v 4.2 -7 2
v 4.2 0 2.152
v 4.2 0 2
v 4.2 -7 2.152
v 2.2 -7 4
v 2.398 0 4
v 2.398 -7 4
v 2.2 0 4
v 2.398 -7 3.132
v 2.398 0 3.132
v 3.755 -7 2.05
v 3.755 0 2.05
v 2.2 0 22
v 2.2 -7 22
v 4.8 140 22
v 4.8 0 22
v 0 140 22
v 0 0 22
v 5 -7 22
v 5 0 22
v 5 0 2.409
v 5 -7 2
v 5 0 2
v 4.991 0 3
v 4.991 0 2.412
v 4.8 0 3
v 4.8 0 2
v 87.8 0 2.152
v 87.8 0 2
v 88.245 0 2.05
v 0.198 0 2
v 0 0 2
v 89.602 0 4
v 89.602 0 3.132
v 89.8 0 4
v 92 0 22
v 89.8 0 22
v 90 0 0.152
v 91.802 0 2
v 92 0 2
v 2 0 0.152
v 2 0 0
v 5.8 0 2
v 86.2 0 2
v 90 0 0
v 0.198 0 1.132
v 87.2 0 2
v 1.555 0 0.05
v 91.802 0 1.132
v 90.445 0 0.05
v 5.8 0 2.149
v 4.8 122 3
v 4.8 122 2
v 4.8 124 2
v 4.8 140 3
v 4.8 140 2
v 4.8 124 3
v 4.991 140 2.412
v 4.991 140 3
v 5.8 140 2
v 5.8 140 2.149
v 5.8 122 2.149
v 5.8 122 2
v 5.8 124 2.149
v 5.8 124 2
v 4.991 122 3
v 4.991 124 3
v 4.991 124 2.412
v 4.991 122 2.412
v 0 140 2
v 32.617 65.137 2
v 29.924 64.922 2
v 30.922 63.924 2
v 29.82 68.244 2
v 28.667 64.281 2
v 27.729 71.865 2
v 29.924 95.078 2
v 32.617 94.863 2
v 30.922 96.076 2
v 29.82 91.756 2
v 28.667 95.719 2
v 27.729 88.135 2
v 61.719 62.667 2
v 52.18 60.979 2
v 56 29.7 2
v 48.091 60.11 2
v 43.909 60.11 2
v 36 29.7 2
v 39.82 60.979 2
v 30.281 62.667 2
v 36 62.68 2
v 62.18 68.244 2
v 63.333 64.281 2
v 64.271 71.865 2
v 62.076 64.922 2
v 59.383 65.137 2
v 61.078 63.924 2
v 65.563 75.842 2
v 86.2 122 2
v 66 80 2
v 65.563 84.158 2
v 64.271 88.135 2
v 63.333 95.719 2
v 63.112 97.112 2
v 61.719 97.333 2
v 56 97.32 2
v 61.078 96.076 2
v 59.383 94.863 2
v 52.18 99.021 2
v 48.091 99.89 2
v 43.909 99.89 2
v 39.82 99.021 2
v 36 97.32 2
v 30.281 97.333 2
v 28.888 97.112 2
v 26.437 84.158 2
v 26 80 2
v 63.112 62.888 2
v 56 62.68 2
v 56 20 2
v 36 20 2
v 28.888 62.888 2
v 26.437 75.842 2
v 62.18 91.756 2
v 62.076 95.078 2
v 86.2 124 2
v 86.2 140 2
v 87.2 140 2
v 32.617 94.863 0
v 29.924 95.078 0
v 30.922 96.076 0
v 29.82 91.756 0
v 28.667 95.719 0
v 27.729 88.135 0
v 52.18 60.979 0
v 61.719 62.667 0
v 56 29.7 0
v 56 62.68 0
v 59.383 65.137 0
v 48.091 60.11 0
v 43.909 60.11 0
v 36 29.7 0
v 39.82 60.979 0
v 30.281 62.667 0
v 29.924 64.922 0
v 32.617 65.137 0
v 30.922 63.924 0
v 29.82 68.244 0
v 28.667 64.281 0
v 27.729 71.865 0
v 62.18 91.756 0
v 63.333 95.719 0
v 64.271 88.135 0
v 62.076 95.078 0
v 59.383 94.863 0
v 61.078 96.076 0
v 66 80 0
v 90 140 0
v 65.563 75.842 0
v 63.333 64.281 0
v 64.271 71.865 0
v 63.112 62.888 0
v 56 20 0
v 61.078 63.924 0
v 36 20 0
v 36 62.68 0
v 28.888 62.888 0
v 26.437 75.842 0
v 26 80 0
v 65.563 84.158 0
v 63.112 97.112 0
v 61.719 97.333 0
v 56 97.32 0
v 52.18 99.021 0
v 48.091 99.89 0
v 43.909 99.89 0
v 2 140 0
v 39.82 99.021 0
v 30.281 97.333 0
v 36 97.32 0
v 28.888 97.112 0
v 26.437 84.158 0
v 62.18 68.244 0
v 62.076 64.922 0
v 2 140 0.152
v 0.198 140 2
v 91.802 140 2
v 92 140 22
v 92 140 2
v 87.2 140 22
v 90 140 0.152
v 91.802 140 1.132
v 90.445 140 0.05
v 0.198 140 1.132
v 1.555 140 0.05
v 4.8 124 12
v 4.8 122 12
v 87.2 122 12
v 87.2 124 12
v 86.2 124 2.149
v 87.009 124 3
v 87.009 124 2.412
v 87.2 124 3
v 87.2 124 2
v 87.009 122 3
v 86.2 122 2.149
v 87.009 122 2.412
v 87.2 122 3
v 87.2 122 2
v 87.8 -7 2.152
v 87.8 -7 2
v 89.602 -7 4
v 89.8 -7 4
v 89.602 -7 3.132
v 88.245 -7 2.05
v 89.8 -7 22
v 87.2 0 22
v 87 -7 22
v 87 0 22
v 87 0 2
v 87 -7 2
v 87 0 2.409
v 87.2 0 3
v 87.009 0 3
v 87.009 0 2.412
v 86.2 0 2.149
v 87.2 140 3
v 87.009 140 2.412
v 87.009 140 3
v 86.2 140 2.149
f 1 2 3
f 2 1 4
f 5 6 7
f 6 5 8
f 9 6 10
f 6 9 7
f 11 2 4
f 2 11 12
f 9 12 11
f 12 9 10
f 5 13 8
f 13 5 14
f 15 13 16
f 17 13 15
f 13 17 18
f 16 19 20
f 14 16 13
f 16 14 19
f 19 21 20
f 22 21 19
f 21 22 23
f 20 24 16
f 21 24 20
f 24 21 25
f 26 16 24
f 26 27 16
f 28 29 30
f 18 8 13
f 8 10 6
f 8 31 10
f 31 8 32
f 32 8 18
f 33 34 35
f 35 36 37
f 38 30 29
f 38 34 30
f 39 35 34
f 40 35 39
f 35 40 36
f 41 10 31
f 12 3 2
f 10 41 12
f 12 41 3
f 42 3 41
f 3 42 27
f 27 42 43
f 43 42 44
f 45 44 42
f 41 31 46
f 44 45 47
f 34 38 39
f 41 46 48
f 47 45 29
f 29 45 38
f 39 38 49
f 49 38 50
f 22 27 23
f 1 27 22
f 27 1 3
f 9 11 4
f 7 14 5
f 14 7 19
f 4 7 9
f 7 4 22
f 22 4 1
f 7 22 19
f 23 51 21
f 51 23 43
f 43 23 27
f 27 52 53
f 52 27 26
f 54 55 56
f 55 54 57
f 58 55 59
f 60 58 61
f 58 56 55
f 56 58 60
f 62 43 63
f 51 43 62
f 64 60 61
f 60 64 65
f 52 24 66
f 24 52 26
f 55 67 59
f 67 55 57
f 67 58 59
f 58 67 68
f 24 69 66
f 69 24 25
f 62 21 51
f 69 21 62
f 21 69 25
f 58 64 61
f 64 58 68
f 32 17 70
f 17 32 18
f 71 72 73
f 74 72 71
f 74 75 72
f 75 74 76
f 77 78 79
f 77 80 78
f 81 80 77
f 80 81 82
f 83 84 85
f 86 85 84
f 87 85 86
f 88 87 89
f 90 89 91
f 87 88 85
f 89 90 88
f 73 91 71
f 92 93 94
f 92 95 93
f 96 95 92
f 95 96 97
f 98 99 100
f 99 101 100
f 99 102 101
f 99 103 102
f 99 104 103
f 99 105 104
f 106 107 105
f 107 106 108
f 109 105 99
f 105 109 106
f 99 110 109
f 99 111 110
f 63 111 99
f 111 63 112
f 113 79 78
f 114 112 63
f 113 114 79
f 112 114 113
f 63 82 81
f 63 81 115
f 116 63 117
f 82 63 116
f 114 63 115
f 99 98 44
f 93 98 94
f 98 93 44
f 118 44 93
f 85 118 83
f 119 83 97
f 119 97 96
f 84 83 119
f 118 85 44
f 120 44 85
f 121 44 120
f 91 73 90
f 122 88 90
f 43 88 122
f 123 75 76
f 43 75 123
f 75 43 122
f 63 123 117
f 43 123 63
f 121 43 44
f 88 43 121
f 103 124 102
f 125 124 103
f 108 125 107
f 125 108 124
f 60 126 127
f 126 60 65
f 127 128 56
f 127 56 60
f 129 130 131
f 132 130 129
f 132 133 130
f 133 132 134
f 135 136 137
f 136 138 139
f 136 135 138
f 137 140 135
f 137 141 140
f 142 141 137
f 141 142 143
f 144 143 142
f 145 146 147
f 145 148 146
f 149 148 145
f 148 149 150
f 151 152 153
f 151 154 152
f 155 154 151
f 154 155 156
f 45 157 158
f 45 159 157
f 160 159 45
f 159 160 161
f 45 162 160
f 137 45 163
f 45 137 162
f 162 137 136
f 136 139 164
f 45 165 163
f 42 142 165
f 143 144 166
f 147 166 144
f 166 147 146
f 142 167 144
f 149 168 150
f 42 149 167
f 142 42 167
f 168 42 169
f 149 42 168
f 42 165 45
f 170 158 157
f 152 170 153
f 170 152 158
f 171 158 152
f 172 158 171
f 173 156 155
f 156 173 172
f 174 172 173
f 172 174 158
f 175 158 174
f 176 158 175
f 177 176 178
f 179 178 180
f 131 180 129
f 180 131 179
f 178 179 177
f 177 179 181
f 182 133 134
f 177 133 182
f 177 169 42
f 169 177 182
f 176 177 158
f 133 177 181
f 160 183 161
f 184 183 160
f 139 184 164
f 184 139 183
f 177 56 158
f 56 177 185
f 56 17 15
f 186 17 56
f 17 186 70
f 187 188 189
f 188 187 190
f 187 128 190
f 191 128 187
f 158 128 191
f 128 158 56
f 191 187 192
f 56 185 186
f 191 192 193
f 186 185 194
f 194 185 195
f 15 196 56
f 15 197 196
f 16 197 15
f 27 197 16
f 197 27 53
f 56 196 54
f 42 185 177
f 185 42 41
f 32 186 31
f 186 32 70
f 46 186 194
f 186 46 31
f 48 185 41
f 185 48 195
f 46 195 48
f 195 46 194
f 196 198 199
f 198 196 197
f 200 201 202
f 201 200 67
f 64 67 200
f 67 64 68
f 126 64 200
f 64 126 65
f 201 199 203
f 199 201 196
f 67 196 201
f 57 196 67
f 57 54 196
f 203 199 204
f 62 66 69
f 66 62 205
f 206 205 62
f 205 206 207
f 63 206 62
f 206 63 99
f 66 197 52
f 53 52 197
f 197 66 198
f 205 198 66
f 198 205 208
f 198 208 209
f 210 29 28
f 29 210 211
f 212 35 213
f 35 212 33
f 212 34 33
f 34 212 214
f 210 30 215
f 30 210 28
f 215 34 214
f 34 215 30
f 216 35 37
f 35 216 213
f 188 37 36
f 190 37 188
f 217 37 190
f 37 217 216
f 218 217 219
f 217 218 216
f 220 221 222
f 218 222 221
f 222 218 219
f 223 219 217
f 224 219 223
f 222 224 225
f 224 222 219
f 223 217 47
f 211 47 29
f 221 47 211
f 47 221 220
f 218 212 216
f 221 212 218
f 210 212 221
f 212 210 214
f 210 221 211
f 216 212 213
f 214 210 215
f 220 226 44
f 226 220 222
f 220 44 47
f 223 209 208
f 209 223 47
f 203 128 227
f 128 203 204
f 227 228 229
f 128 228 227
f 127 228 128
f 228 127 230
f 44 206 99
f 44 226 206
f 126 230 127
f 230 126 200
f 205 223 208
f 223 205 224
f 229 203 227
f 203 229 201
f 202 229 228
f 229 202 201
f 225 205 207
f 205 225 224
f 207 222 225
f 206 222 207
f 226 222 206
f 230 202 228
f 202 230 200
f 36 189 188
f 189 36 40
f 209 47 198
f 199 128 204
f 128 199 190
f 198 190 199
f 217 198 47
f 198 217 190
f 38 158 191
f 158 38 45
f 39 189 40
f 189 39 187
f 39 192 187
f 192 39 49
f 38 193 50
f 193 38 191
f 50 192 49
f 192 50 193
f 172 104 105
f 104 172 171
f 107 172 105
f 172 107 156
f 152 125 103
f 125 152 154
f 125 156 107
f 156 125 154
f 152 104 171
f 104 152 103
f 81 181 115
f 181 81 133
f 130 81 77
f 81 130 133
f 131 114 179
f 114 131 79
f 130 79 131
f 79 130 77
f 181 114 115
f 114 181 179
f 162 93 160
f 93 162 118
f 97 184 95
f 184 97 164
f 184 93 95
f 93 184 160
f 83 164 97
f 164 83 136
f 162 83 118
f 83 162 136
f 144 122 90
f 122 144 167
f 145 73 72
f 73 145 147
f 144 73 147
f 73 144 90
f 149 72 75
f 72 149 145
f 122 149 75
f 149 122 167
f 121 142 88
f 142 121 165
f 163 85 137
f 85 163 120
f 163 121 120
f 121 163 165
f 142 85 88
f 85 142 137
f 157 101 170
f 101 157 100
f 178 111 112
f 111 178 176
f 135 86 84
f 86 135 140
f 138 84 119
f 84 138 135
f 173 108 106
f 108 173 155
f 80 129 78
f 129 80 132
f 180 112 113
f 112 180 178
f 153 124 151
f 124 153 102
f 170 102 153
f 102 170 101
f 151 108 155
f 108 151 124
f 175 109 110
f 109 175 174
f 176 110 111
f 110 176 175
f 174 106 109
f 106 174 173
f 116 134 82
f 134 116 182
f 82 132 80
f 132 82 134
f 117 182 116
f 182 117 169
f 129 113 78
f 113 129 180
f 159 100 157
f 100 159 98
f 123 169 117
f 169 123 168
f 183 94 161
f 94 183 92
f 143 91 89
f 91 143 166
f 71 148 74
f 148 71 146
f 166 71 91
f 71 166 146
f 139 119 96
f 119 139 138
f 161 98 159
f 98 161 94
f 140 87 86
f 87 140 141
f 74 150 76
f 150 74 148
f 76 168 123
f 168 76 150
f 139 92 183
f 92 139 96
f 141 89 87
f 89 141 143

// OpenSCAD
module corner_fill(len, thick)
{
    translate([0,-(thick / 2),-(thick / 2)]) difference()
    {
        cube([len,thick / 2, thick / 2]);
        rotate([0,90,0]) translate([0,0,-1]) cylinder(h=len + 2, d=thick);
    }
}

module corner_cut(len, thick)
{
    union()
    {
        corner_fill(len, thick);
        translate([0, -(thick / 2), 0])
            cube([len, (thick / 2) + 1, 1]);
        translate([0, 0, -(thick / 2)])
            cube([len, 1, (thick / 2) + 1]);
    }
}


module top_deck(width, thick, side, ridge_h)
{    
    difference()
    {
        union()
        {
            // Front peg
            translate([thick + 0.2,-(10 - (1.5 * thick)),thick])
                difference()
                {
                    cube([(1.5 * thick) - 0.2,
                        10 - (1.5 * thick),ridge_h]);
                    translate([0,-1,0]) rotate([-90,0,90])
                        corner_cut(10 - (1.5 * thick) + 2,
                            2 * thick);
                }

            // Top deck
            translate([0,0,0]) cube([width, side, thick]);
        
            // Side
            translate([0, 0, thick])
                cube([(2.5 * thick) - 0.2, side, ridge_h]);

            translate([(2.5 * thick) - 0.2, 0, thick]) rotate([-90,0,90])
                corner_fill(side, thick);
        }
        union()
        {
            translate([0,-1,0]) rotate([-90,0,90])
                corner_cut(side + 2, 2 * thick);
        }
    }
    translate([(2.5 * thick) - 0.2, 122, thick])
        cube([width - (2.5 * thick) + 0.2, thick, ridge_h / 2]);
}



union()
{
    width=46;
    thick=2;
    side=140;
    ridge_h = 20;

    difference()
    {
        union()
        {
            // left side
            translate([0,0,0])
                top_deck(width, thick, side, ridge_h);
    
            // right side
            translate([92,0,0]) mirror() 
                top_deck(width, thick, side, ridge_h);
        }
        union()
        {
            // switch hole
            translate([width - 10,20,-1])
                cube([20,9.7,thick + 2]);
            
            // joystick hole
            translate([width, 80, -1])
                cylinder(r=20, h=thick+2);
            
            translate([width, 80,-1]) union()
            {
                rotate([0,0,45])
                    translate([23,0,0])
                    cylinder(r=1.2, h=thick+2);
                rotate([0,0,135])
                    translate([23,0,0])
                    cylinder(r=1.2, h=thick+2);
                rotate([0,0,-45])
                    translate([23,0,0])
                    cylinder(r=1.2, h=thick+2);
                rotate([0,0,-135])
                    translate([23,0,0])
                    cylinder(r=1.2, h=thick+2);
            }
            
        }
    }
}
